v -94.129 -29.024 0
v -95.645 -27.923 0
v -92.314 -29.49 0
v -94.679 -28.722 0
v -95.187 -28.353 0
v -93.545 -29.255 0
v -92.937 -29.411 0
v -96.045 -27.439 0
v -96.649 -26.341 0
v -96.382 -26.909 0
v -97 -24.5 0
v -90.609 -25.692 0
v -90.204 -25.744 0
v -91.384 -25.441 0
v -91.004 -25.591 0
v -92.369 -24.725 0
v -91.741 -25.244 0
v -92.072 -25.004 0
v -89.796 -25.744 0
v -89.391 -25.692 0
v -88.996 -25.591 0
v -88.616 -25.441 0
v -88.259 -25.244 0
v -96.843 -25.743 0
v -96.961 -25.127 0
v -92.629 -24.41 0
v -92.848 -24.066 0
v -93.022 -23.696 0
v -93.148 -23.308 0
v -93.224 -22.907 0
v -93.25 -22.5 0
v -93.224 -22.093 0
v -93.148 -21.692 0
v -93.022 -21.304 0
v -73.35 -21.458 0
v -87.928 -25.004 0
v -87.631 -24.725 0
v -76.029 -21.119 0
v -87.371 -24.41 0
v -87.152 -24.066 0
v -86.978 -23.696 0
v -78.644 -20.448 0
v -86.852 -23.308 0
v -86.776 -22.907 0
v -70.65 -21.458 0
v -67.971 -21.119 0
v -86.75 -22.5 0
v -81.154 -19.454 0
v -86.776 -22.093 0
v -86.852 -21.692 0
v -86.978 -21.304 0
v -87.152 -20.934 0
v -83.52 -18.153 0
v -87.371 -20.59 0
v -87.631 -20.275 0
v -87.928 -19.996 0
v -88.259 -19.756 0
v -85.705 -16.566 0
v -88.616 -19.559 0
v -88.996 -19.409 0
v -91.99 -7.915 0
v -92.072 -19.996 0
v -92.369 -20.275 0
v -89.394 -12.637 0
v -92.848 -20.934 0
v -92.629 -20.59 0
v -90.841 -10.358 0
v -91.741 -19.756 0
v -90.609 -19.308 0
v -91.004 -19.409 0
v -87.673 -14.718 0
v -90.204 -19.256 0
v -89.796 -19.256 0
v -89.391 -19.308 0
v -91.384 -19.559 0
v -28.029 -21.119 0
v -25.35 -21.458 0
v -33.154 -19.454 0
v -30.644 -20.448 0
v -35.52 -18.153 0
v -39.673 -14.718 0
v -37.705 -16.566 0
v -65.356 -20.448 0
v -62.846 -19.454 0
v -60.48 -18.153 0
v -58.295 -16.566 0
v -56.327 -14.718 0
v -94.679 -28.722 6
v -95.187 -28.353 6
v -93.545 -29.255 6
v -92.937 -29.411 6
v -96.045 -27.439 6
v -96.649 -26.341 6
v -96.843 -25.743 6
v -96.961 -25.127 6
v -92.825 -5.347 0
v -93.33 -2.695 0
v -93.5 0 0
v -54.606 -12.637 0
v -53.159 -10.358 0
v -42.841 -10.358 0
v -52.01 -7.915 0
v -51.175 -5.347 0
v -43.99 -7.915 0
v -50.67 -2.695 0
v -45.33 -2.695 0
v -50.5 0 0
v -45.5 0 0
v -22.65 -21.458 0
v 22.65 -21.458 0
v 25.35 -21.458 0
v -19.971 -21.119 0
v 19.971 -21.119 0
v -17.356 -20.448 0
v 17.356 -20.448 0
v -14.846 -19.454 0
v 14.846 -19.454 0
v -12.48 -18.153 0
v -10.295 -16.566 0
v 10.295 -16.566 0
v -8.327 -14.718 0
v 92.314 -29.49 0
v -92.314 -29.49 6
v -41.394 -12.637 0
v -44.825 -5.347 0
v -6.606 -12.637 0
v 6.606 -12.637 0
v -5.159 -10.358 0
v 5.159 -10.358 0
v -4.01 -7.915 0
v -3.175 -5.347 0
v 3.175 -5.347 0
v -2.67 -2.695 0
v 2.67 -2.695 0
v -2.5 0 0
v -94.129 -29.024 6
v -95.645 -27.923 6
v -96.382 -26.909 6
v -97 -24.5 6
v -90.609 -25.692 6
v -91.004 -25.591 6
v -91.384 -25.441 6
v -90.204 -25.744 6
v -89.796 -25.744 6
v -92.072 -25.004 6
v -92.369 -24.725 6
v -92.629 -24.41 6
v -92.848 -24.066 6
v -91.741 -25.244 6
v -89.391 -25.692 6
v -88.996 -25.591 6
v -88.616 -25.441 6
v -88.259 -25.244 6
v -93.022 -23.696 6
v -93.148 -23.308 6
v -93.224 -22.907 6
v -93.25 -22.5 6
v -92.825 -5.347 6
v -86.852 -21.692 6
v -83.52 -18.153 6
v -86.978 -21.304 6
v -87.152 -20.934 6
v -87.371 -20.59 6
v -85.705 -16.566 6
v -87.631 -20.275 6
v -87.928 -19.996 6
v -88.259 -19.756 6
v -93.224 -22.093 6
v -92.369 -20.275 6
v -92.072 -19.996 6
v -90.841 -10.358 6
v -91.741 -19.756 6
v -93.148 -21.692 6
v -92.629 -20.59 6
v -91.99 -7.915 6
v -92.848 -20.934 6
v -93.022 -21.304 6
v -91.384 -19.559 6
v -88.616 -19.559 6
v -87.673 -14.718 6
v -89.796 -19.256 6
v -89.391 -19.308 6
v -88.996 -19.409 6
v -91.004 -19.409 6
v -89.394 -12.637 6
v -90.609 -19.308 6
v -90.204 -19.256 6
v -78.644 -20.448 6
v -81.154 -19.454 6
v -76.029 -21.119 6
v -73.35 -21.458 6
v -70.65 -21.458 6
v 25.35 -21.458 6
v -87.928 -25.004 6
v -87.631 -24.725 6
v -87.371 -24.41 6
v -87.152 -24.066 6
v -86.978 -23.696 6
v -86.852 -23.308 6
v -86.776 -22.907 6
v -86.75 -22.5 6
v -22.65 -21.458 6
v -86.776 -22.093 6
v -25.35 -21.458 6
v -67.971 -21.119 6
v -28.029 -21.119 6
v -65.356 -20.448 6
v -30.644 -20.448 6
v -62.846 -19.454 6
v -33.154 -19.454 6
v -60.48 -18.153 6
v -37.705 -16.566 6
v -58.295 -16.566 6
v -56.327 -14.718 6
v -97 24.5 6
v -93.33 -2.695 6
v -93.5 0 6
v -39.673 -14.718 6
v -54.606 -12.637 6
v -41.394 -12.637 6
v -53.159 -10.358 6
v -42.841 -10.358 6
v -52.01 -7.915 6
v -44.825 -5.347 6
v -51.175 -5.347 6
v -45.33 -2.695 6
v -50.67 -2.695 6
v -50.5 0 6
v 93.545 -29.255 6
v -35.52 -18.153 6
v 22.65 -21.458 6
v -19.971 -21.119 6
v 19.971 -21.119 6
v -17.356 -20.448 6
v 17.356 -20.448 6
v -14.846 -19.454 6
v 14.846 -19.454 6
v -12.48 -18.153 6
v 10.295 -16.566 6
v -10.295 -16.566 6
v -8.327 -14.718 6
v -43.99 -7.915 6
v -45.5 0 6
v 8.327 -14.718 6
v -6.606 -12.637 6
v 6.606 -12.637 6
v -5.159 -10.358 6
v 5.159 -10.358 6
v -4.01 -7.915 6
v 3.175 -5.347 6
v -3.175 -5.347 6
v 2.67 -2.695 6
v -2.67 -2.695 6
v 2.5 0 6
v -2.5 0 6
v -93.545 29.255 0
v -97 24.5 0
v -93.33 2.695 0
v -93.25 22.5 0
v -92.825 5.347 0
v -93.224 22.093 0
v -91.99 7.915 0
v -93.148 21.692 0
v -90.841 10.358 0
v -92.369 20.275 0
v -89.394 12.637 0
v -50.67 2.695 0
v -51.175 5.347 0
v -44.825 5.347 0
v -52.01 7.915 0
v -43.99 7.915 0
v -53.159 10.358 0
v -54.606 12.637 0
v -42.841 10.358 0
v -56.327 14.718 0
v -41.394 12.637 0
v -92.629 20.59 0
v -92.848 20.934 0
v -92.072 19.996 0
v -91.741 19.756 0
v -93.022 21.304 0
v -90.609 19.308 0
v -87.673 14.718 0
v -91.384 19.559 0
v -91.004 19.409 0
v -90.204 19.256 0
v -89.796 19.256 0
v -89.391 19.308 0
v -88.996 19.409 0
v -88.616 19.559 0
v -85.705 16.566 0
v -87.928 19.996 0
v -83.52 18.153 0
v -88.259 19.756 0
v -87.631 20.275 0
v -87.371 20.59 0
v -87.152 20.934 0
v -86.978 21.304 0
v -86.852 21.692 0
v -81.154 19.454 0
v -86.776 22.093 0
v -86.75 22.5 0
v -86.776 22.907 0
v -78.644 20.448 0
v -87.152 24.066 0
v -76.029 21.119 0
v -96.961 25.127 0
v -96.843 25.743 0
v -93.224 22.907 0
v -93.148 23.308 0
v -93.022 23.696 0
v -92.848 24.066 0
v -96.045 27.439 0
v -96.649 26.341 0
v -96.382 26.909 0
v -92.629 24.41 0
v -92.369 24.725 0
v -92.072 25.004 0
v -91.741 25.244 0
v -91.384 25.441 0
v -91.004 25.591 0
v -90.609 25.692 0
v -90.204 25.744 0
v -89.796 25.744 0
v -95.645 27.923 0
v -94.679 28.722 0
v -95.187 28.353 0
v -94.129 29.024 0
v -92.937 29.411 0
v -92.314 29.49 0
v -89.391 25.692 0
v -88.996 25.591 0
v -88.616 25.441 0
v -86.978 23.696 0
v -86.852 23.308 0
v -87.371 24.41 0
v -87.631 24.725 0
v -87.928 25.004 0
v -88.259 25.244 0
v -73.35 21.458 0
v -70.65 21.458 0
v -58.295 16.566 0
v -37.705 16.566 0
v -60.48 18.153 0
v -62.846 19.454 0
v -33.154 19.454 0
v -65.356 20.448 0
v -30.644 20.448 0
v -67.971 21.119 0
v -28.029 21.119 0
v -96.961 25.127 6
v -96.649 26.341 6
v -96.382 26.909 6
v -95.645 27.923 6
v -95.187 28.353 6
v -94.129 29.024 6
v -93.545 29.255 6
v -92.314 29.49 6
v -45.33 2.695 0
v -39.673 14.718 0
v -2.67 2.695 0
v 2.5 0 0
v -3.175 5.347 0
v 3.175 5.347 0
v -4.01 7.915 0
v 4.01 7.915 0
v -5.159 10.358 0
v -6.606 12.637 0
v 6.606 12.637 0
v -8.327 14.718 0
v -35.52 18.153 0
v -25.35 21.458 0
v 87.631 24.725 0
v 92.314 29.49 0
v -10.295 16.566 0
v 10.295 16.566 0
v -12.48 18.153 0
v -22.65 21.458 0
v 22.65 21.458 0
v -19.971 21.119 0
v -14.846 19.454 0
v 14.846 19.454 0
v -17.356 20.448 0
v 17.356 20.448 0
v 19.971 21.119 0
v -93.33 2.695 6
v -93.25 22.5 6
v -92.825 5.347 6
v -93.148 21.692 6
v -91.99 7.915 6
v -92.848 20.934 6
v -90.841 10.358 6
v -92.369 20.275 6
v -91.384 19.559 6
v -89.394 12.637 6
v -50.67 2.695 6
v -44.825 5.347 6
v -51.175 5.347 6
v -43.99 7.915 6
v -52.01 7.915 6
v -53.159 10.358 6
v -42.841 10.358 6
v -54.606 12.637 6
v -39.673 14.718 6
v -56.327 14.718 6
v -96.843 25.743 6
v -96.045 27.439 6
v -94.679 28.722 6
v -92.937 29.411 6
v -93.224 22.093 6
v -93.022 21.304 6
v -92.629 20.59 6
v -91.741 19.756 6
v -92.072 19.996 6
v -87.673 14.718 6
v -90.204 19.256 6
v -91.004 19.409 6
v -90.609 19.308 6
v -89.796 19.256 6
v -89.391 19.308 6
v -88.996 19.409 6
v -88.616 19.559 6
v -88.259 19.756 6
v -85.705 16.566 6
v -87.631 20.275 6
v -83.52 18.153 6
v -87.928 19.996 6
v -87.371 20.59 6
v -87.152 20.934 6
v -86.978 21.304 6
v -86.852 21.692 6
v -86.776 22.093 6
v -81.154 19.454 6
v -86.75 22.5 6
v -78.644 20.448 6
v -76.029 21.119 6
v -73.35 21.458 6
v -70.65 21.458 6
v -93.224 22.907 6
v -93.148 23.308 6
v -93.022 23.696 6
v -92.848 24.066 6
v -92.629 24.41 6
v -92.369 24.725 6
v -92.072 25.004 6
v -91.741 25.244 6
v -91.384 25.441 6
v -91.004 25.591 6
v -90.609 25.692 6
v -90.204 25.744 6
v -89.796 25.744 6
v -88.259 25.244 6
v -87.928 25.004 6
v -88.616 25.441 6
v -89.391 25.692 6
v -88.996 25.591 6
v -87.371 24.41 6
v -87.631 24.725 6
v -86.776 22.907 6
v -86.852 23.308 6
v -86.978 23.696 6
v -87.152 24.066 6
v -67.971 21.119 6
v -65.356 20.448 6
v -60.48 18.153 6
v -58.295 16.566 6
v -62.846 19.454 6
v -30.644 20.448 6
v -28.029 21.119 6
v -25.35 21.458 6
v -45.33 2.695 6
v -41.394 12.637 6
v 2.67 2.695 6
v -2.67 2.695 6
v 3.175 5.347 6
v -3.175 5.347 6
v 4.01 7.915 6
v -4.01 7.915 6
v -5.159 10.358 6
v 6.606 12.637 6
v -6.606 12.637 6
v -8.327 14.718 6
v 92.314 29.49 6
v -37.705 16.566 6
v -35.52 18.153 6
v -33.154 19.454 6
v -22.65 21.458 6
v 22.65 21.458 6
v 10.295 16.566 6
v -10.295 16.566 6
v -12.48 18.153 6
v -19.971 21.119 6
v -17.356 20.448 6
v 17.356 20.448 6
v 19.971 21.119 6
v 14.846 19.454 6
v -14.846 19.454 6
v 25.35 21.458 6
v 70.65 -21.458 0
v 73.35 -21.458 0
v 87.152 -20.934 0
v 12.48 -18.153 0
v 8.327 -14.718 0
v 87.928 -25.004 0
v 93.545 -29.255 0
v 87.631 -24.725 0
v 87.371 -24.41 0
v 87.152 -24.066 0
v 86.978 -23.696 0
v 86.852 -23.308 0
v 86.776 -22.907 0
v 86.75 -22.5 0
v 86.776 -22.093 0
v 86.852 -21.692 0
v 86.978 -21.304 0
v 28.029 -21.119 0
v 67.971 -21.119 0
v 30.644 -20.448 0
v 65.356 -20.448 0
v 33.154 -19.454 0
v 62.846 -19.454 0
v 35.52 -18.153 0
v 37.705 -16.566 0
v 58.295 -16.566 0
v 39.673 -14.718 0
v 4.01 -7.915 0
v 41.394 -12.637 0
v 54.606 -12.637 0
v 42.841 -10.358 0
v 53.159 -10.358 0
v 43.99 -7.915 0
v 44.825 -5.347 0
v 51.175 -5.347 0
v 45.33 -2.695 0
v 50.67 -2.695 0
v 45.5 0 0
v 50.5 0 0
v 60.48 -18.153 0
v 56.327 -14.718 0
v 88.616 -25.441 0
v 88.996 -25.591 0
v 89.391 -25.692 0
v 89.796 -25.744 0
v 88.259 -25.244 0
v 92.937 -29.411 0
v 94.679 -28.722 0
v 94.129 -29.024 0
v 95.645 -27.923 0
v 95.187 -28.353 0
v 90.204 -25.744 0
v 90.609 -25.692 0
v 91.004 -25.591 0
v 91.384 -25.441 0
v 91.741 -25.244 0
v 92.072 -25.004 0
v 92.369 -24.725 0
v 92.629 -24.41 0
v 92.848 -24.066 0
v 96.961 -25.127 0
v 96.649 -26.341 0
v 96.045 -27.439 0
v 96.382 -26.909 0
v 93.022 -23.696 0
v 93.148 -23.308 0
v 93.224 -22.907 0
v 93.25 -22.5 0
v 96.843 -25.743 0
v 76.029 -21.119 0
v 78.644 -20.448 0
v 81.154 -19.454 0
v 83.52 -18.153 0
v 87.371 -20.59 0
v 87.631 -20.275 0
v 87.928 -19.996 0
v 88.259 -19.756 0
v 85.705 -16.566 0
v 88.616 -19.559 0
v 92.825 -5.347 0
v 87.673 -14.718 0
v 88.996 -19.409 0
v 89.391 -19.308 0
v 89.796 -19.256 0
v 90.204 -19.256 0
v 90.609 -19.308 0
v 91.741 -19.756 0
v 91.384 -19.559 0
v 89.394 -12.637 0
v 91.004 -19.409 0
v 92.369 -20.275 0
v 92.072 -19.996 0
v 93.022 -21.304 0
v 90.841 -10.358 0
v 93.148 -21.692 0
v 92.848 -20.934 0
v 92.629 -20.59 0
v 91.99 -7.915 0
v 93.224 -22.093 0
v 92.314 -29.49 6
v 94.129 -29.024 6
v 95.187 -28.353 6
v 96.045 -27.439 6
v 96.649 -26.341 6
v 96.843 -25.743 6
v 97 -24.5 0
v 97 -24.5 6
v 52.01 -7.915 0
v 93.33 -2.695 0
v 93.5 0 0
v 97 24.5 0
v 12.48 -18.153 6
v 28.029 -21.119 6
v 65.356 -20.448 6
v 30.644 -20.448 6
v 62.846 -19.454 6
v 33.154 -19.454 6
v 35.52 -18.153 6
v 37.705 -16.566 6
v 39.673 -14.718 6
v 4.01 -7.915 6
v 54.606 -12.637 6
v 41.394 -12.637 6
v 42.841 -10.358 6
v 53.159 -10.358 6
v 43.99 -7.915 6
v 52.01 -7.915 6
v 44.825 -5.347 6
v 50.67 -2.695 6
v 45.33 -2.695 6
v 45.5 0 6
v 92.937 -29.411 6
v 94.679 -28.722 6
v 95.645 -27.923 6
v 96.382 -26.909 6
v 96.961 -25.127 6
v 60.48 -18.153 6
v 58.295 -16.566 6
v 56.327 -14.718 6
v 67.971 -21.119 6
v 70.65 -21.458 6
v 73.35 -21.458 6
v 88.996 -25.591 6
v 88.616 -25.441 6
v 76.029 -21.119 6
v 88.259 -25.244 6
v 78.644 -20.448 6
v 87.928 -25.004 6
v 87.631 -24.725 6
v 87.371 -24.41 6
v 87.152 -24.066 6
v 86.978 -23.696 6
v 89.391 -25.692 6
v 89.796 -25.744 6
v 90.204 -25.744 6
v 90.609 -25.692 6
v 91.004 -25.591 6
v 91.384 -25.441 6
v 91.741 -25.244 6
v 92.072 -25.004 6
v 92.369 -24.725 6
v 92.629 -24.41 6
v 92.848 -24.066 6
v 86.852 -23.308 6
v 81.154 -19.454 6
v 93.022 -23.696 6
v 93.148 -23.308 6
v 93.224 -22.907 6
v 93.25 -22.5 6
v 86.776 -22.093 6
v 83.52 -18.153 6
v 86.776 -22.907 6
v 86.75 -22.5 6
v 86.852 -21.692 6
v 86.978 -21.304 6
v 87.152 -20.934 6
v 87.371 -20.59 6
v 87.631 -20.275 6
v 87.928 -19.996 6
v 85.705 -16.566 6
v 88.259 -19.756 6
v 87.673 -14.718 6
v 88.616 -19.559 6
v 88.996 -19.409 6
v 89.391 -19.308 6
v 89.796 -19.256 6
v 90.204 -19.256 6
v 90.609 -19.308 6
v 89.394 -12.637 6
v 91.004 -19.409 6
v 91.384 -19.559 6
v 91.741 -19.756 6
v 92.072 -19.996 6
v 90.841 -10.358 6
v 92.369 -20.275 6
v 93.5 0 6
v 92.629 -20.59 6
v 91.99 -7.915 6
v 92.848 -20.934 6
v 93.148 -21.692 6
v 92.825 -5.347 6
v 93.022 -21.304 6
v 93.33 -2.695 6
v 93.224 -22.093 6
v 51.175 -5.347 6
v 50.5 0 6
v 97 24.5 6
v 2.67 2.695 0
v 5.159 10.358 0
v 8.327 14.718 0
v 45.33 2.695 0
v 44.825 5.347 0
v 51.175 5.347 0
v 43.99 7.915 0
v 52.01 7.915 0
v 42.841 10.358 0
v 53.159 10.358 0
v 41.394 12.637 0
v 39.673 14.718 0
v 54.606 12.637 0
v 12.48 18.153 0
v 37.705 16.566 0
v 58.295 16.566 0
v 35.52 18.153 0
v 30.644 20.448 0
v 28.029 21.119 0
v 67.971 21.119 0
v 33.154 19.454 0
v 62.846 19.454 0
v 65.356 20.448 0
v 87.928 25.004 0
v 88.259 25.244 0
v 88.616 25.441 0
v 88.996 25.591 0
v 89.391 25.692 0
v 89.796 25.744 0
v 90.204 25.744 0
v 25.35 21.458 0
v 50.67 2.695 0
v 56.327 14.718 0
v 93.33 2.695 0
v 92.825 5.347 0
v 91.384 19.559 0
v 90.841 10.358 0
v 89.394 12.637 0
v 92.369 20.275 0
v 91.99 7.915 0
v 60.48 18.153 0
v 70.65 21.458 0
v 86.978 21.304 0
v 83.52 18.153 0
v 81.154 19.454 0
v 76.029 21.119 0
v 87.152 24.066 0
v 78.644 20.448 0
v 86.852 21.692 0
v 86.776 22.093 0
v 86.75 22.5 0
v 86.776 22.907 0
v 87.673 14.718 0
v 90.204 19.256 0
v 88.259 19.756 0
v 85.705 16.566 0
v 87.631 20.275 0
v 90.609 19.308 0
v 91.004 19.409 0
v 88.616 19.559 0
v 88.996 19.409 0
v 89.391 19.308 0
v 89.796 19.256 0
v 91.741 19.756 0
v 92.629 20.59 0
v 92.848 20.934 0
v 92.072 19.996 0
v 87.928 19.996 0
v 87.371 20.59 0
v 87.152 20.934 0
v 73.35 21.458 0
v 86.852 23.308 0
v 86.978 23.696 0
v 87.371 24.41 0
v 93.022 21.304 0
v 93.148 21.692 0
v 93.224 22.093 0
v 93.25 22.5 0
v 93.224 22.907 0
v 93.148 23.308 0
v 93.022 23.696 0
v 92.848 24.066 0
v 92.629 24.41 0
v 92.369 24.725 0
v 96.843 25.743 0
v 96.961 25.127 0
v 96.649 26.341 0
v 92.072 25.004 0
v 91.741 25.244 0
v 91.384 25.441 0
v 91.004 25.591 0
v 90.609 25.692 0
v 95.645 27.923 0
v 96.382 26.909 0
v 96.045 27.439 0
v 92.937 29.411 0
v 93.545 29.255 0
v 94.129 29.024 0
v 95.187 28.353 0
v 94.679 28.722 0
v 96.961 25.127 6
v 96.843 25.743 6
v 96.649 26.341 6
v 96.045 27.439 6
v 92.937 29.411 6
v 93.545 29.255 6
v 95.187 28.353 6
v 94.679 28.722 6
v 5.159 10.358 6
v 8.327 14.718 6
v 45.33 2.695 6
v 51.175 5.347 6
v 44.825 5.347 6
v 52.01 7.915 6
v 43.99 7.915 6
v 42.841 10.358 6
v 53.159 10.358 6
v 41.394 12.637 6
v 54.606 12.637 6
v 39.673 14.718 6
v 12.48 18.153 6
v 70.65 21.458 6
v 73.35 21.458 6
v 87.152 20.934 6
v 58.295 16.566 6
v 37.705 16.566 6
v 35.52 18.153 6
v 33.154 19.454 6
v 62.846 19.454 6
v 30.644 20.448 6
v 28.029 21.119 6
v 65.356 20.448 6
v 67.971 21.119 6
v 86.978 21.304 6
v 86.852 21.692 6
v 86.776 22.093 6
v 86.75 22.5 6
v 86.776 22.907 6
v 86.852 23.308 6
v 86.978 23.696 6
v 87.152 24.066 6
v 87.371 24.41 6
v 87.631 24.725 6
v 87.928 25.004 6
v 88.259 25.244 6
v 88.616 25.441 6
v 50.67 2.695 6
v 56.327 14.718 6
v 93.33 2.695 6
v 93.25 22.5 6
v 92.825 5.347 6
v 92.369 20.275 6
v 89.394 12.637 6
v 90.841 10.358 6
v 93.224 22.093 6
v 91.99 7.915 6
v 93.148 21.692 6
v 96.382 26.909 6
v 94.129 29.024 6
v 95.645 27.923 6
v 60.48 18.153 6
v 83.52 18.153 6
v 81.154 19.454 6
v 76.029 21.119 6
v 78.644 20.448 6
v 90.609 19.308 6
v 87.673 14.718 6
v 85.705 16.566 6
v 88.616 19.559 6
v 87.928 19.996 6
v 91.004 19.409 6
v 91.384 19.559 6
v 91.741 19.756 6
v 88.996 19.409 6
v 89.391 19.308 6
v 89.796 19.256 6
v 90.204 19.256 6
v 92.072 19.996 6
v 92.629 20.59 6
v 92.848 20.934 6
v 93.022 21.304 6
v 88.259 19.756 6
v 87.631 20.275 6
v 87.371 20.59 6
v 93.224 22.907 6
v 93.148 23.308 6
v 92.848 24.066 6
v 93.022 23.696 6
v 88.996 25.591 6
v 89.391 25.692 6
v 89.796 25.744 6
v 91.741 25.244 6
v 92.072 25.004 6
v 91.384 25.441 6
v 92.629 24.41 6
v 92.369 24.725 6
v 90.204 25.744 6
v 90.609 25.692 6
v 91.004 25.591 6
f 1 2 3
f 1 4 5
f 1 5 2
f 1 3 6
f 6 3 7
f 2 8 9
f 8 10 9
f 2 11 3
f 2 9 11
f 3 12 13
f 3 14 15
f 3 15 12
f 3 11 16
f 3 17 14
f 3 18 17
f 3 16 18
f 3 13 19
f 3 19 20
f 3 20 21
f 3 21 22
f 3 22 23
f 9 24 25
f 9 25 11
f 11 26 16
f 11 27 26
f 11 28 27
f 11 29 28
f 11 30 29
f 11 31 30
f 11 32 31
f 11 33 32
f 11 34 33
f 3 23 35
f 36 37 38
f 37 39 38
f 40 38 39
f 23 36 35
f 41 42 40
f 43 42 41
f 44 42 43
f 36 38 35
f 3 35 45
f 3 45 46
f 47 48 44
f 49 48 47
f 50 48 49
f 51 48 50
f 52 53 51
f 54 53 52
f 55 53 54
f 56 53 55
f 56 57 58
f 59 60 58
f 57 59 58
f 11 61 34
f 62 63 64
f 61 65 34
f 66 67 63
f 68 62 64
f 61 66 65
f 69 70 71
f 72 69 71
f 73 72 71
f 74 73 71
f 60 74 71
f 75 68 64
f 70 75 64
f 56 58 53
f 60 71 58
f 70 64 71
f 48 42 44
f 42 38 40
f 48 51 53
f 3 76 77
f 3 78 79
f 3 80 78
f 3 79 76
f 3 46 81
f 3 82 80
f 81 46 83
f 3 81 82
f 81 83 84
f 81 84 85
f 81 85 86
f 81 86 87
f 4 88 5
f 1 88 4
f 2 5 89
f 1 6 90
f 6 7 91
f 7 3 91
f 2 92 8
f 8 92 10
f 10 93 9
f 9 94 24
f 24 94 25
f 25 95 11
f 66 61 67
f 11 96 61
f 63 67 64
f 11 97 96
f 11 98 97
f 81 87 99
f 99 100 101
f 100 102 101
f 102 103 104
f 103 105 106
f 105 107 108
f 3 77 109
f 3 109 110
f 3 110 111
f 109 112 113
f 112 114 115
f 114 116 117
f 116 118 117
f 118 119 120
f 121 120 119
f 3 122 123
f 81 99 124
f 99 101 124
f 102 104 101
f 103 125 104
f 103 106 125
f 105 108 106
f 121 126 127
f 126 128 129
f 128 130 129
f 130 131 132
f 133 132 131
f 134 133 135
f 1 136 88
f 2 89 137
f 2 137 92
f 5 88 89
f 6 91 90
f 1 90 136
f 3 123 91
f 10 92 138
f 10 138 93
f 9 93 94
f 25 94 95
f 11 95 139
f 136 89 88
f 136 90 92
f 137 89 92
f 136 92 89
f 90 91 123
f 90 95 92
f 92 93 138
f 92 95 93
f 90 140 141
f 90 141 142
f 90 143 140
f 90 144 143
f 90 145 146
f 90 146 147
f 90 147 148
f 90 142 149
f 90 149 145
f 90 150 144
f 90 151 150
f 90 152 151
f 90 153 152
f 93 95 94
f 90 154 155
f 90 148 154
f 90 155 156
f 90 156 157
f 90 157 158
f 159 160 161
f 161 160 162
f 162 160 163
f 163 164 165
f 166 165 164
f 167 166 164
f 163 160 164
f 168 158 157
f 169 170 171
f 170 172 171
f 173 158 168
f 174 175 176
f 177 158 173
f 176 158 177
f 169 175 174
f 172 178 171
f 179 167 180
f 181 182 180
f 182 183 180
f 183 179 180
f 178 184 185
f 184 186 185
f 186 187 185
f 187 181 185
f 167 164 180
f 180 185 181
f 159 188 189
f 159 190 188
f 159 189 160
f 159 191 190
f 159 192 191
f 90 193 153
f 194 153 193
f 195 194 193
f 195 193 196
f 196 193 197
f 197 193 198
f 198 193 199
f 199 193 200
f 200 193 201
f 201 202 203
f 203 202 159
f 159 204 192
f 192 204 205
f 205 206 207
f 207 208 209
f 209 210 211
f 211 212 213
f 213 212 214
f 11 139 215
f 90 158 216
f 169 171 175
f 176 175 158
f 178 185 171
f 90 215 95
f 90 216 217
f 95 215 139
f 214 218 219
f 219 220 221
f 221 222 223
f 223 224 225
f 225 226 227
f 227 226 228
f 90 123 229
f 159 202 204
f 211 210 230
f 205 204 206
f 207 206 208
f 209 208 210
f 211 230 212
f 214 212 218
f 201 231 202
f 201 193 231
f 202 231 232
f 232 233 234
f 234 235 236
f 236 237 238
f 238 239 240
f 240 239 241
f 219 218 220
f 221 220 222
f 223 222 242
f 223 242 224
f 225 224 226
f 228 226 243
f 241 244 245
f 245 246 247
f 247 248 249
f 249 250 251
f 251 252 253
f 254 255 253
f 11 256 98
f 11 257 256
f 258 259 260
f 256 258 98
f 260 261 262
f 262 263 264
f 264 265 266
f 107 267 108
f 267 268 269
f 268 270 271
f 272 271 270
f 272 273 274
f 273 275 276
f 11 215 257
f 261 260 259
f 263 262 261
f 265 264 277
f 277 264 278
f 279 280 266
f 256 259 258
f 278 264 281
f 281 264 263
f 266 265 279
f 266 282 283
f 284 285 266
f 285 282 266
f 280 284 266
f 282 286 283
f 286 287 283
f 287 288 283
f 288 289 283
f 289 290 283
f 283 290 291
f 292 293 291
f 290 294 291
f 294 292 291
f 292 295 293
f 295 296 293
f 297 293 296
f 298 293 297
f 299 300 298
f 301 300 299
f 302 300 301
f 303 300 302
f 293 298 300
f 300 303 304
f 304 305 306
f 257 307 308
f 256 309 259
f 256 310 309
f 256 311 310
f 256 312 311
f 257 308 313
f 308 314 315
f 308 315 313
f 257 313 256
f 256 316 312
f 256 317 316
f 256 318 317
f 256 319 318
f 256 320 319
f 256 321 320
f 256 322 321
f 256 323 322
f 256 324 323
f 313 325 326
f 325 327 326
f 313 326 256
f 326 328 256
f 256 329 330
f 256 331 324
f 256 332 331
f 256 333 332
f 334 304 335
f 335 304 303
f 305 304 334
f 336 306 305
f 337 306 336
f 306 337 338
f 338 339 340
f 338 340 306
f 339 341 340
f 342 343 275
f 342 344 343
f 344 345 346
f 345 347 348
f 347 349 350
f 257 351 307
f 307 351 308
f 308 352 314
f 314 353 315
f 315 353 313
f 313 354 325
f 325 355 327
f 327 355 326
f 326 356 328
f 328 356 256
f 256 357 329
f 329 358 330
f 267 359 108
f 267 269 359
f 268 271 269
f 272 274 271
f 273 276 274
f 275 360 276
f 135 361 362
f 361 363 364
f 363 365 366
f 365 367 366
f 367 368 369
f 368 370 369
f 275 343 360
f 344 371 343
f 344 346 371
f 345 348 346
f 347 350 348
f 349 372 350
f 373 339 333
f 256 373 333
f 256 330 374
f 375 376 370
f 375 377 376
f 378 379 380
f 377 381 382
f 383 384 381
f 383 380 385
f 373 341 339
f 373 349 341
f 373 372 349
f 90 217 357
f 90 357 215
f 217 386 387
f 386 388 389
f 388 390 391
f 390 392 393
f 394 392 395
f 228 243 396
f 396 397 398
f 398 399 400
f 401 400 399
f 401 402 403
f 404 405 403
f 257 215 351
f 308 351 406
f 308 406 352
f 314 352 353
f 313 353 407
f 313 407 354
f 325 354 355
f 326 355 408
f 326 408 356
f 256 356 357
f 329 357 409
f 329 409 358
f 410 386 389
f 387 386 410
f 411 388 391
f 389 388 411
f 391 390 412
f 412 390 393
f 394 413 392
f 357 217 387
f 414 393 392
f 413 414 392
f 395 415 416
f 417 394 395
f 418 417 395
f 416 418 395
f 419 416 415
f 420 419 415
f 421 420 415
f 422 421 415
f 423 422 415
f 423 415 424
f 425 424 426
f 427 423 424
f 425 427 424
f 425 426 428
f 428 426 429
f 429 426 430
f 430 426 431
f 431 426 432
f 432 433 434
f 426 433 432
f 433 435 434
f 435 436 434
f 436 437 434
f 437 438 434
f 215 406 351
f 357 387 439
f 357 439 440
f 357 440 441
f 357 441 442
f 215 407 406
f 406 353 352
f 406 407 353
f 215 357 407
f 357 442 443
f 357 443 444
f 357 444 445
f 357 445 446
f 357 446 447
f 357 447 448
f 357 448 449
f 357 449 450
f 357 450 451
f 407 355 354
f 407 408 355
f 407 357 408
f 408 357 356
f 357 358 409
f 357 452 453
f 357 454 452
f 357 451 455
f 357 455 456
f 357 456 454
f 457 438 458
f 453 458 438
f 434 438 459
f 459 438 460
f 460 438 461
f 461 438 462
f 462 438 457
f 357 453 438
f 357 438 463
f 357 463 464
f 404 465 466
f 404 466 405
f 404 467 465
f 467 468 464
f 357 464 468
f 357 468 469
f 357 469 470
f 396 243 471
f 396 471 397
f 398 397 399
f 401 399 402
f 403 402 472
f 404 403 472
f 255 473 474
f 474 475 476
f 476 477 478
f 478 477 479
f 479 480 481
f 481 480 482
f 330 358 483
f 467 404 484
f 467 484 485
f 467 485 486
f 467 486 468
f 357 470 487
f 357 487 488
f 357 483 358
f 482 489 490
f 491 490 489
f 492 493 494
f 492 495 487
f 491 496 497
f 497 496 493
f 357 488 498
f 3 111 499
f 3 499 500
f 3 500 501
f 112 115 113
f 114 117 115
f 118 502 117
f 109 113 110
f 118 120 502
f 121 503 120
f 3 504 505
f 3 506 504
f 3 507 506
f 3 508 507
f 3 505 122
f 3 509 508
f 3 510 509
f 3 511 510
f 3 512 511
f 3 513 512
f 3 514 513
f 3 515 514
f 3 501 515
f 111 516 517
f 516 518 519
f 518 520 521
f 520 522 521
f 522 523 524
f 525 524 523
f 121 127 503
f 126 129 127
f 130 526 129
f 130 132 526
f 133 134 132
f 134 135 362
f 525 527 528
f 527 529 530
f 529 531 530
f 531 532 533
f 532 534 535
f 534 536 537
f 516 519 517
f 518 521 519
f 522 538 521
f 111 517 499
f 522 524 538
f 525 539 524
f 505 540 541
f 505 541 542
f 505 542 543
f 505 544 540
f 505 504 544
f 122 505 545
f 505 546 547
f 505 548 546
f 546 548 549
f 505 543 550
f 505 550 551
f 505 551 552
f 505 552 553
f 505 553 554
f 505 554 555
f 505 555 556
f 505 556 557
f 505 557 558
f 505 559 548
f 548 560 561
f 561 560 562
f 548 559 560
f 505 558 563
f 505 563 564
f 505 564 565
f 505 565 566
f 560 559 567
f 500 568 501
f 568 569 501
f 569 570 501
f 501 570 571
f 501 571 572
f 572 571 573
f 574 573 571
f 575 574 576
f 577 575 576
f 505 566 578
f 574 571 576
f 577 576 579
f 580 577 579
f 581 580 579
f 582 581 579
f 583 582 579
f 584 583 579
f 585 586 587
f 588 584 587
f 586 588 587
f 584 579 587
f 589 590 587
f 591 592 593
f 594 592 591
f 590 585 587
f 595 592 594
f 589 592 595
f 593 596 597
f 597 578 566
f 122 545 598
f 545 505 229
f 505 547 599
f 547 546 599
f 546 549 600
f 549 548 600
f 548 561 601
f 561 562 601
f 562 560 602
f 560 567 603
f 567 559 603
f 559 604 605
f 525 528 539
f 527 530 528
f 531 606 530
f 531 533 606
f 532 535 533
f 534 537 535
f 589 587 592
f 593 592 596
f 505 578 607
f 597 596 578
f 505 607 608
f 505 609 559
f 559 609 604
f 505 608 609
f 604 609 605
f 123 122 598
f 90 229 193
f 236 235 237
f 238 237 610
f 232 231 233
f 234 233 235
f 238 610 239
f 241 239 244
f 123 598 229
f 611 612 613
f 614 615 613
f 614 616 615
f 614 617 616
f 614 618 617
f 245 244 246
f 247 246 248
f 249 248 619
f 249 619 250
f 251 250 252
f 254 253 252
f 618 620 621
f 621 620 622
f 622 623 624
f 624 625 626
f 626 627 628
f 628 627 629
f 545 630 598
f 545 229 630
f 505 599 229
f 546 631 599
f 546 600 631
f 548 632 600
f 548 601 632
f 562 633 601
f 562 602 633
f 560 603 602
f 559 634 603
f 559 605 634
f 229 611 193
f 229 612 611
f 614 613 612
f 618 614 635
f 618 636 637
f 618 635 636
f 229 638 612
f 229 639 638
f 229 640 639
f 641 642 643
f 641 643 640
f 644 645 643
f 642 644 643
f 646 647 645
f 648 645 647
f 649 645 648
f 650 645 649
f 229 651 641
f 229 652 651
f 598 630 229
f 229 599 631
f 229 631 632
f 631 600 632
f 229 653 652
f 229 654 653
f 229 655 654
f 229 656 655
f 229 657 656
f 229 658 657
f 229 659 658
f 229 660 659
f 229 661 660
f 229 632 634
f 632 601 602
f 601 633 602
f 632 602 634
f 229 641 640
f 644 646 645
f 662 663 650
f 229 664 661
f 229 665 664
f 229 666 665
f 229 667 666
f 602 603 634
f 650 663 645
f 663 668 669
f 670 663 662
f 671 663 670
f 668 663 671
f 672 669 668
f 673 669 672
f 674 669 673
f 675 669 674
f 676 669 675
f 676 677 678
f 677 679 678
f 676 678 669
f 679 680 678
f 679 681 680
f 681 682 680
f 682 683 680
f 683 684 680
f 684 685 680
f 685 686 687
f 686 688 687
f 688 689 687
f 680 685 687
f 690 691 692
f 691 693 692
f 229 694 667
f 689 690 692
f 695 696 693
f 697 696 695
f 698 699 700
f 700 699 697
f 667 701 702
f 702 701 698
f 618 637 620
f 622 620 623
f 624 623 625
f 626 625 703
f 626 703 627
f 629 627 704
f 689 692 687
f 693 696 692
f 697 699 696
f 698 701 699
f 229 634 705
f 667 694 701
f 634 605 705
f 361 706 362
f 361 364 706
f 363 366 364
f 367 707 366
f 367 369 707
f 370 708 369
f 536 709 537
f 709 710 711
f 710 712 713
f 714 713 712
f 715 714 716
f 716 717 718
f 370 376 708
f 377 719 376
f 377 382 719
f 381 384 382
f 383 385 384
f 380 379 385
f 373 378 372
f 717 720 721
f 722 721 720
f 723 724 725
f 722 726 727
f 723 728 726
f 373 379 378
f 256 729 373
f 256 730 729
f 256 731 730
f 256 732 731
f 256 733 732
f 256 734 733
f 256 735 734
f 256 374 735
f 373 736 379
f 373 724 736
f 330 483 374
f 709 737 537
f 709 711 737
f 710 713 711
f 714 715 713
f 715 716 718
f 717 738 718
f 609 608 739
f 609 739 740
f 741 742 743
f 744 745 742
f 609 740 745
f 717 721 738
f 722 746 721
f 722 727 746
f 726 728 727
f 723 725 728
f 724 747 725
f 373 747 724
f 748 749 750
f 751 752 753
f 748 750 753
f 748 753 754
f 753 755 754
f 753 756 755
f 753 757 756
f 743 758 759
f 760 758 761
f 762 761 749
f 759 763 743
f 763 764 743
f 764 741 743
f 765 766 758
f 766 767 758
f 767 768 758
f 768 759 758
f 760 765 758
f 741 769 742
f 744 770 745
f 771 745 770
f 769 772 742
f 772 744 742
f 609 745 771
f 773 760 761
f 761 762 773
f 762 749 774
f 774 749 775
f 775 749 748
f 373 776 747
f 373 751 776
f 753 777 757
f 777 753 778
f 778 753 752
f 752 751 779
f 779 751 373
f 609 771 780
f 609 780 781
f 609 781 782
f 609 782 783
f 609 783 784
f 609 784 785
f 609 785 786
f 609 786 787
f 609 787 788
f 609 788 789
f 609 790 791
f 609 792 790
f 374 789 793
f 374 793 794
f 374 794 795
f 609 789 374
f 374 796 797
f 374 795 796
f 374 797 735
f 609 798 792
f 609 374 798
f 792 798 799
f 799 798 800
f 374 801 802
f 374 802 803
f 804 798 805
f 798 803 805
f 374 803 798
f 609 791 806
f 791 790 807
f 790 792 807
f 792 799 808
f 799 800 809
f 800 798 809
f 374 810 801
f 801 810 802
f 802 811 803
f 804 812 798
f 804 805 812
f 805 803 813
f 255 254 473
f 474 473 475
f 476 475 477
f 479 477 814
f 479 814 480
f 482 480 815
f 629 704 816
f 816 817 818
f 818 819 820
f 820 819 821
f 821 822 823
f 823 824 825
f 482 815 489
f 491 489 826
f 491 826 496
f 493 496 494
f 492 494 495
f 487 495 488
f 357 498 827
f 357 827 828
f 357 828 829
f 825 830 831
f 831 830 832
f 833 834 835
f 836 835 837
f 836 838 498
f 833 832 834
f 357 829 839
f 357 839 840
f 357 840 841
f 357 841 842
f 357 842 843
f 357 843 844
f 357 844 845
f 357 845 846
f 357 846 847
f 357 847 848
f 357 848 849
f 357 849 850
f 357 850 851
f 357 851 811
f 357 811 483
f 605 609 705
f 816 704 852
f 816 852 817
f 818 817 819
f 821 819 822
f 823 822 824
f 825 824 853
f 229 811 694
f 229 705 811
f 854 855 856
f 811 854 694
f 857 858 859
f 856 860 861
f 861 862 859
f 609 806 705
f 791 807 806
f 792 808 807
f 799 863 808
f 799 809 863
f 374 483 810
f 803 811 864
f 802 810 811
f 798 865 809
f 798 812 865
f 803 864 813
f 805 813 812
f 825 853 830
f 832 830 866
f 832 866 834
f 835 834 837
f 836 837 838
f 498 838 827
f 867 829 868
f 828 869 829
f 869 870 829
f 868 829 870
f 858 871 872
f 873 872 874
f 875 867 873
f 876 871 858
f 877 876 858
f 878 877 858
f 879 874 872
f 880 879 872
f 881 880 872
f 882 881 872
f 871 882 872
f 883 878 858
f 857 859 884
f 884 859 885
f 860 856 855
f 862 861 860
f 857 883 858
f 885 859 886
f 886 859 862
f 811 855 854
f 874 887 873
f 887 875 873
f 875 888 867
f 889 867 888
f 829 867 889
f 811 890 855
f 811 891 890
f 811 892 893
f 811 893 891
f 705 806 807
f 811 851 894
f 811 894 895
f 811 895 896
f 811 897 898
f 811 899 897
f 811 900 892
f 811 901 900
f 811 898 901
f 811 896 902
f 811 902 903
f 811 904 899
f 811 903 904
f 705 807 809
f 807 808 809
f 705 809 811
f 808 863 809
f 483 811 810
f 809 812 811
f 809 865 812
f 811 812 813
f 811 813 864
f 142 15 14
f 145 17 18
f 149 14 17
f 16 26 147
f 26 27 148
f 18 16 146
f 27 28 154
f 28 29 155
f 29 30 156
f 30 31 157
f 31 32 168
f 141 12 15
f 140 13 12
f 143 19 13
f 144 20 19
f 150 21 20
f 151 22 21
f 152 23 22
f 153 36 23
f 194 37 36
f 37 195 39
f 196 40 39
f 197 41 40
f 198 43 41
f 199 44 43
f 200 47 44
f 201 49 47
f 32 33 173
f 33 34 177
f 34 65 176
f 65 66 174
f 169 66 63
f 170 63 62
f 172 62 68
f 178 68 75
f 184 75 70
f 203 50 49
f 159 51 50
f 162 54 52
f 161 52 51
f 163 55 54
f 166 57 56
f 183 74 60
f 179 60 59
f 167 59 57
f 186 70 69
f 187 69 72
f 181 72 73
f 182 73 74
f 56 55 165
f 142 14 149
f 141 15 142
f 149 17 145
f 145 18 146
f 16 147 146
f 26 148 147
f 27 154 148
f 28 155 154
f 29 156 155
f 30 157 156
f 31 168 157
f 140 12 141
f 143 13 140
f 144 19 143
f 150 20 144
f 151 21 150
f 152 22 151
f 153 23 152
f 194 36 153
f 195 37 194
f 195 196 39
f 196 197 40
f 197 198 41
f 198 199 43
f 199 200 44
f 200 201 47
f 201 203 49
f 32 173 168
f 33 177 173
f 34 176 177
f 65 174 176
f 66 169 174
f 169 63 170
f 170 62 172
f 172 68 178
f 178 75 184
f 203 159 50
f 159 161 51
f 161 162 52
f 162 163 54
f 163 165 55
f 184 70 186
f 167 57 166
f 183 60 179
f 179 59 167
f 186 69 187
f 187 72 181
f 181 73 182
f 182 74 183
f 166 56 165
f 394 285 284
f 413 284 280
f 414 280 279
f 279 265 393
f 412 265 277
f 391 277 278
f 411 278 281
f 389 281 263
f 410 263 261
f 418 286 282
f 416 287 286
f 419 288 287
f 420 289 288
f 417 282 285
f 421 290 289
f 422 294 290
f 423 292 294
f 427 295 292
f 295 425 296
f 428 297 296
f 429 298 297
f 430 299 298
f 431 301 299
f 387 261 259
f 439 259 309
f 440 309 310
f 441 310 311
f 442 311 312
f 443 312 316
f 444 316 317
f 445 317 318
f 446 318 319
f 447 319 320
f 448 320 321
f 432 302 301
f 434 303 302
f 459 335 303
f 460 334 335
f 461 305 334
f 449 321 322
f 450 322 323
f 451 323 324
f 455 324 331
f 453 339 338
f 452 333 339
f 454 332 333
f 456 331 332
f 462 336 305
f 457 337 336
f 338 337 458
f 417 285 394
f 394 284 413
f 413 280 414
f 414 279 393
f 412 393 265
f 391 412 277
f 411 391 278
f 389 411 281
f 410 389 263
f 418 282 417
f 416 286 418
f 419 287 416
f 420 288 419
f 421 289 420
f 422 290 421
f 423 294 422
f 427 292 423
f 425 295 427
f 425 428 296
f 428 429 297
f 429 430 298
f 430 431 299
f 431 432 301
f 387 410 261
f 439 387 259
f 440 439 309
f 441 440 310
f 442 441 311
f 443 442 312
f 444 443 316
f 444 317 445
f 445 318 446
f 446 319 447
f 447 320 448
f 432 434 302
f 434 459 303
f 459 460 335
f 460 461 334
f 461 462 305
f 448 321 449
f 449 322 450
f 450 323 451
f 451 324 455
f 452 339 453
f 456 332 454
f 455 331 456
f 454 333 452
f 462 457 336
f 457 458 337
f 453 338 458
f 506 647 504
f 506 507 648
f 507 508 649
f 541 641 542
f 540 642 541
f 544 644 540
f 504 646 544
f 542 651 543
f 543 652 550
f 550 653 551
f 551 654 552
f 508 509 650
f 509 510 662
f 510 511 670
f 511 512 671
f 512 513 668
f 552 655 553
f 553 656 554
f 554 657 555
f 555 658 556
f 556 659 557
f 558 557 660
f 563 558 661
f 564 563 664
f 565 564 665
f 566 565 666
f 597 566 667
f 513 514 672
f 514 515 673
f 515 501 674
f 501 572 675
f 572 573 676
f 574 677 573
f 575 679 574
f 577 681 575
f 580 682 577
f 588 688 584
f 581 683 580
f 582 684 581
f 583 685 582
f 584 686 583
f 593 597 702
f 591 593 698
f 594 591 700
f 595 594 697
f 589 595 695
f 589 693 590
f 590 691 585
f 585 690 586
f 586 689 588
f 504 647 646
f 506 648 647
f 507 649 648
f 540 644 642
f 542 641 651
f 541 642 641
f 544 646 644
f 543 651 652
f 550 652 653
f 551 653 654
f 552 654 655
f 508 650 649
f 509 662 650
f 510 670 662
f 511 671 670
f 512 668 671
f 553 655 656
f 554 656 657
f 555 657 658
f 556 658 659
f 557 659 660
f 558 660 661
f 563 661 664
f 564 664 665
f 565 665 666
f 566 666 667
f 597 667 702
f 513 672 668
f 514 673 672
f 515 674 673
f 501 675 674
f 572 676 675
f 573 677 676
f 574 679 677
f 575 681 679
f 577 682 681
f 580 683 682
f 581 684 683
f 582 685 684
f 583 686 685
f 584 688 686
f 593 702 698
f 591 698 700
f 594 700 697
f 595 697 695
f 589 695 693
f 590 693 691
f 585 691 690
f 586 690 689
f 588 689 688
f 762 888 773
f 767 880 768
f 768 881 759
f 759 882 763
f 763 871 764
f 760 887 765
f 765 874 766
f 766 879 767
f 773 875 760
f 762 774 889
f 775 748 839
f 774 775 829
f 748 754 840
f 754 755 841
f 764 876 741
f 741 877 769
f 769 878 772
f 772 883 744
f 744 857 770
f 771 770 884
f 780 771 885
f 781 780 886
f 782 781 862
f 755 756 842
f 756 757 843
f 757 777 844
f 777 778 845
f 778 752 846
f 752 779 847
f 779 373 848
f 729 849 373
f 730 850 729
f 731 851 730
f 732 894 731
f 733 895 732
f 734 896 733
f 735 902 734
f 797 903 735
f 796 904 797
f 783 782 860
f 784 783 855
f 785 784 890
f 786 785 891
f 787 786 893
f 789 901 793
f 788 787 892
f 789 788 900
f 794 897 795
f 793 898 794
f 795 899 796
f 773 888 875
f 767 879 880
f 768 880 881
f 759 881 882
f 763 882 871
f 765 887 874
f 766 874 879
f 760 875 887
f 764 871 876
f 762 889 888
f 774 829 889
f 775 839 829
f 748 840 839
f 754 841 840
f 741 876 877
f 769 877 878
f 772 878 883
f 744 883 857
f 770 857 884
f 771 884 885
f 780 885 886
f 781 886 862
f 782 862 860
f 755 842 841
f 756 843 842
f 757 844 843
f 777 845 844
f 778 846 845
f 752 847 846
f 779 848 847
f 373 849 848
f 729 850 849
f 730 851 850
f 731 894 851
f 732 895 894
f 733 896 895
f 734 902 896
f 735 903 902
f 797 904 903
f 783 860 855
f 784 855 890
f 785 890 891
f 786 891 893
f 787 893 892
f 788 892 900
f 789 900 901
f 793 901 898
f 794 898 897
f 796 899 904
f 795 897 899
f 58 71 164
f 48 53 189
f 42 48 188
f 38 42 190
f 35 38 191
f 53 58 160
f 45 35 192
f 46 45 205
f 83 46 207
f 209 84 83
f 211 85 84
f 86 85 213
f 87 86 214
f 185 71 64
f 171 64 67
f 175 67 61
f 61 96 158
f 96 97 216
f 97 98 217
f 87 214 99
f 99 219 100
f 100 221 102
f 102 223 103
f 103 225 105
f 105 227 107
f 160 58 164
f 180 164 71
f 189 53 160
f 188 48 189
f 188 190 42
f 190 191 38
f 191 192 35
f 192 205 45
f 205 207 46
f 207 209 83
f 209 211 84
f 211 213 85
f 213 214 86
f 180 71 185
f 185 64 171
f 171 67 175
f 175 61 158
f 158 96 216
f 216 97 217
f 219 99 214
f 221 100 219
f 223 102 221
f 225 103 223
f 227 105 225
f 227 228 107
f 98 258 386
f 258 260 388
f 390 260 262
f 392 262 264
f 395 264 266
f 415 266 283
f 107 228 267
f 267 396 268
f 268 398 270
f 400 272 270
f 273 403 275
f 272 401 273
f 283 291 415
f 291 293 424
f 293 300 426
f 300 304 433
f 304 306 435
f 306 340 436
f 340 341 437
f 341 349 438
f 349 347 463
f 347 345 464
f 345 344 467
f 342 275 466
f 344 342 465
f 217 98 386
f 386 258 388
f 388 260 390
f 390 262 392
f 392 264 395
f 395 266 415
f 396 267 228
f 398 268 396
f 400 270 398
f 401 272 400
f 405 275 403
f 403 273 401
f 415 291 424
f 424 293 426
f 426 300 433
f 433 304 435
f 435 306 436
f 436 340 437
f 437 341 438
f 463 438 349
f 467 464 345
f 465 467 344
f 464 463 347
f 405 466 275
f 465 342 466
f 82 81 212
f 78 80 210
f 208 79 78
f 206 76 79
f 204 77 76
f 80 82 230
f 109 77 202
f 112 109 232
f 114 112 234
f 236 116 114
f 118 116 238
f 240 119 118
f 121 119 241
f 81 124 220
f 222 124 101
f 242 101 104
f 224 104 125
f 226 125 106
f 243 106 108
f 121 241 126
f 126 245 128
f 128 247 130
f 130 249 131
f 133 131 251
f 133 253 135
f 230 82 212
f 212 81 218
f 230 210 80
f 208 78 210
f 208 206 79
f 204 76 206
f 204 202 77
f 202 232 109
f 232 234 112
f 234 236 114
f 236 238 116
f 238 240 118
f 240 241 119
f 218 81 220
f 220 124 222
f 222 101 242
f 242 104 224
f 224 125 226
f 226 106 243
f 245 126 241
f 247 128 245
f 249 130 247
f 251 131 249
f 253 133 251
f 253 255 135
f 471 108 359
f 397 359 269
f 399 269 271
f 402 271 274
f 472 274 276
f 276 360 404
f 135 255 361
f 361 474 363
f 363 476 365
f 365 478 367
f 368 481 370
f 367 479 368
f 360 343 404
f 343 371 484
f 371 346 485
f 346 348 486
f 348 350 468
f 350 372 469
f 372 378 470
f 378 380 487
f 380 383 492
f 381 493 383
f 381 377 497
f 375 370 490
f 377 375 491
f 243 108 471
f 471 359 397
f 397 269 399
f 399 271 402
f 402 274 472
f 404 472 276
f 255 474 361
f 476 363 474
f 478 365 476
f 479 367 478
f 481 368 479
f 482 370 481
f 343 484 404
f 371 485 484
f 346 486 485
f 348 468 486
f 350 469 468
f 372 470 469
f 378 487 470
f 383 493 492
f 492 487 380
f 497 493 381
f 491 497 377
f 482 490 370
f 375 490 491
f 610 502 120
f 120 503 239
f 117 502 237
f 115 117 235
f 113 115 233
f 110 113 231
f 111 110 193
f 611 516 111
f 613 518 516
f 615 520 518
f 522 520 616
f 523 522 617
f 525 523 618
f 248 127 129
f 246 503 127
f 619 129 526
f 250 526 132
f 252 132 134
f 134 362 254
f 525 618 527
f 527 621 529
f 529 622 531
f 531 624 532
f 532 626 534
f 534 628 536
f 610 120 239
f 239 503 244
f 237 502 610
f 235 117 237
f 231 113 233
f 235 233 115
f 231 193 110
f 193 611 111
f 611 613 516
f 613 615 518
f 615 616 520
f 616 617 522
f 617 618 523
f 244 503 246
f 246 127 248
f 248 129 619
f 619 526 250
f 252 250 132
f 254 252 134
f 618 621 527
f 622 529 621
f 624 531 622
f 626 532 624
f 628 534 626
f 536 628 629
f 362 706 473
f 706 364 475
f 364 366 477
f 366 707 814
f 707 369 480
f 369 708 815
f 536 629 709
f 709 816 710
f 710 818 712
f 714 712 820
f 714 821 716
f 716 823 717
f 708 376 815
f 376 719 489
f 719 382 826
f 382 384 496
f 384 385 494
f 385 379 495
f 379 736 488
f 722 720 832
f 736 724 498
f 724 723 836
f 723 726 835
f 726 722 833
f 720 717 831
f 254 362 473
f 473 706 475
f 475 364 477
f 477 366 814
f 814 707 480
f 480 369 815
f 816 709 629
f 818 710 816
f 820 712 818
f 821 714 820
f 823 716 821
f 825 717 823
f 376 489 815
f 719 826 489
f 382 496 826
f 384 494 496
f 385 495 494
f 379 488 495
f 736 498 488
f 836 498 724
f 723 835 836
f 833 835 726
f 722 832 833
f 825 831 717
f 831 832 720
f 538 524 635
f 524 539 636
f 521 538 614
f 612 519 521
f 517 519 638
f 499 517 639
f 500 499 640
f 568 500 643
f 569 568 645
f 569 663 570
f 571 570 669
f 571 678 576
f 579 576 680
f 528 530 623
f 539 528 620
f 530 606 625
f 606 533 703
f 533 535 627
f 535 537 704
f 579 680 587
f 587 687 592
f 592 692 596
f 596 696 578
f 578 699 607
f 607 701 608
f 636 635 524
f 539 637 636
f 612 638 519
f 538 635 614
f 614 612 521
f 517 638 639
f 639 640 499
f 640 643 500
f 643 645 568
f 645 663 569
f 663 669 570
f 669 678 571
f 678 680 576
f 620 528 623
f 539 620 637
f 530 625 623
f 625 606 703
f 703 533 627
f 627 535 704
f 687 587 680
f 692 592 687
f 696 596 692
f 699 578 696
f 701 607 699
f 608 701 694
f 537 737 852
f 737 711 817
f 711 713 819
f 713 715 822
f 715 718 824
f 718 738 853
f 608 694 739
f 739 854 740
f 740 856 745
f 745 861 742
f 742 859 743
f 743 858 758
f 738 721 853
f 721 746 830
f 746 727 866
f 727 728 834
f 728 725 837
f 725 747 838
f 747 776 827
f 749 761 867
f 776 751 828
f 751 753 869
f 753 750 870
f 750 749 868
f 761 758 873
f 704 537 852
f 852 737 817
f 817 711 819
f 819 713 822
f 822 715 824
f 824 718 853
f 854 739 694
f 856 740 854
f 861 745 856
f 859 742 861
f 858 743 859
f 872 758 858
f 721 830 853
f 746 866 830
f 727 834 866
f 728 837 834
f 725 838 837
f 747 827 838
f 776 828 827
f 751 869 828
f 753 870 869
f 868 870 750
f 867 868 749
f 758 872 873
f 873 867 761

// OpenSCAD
$fn = 50;

difference() {
	union() {
		hull() {
			translate(v = [-92.0, 24.5, 0]) {
				cylinder(h = 6, r = 5);
			}
			translate(v = [92.0, 24.5, 0]) {
				cylinder(h = 6, r = 5);
			}
			translate(v = [-92.0, -24.5, 0]) {
				cylinder(h = 6, r = 5);
			}
			translate(v = [92.0, -24.5, 0]) {
				cylinder(h = 6, r = 5);
			}
		}
	}
	union() {
		translate(v = [-90.0, -22.5, -100.0]) {
			cylinder(h = 200, r = 3.25);
		}
		translate(v = [-90.0, 22.5, -100.0]) {
			cylinder(h = 200, r = 3.25);
		}
		translate(v = [90.0, -22.5, -100.0]) {
			cylinder(h = 200, r = 3.25);
		}
		translate(v = [90.0, 22.5, -100.0]) {
			cylinder(h = 200, r = 3.25);
		}
		translate(v = [-90.0, -22.5, -100.0]) {
			cylinder(h = 200, r = 1.8);
		}
		translate(v = [-90.0, 22.5, -100.0]) {
			cylinder(h = 200, r = 1.8);
		}
		translate(v = [90.0, -22.5, -100.0]) {
			cylinder(h = 200, r = 1.8);
		}
		translate(v = [90.0, 22.5, -100.0]) {
			cylinder(h = 200, r = 1.8);
		}
		translate(v = [-72.0, 0, 0.0]) {
			cylinder(h = 6, r = 21.5);
		}
		translate(v = [-24.0, 0, 0.0]) {
			cylinder(h = 6, r = 21.5);
		}
		translate(v = [24.0, 0, 0.0]) {
			cylinder(h = 6, r = 21.5);
		}
		translate(v = [72.0, 0, 0.0]) {
			cylinder(h = 6, r = 21.5);
		}
	}
}
